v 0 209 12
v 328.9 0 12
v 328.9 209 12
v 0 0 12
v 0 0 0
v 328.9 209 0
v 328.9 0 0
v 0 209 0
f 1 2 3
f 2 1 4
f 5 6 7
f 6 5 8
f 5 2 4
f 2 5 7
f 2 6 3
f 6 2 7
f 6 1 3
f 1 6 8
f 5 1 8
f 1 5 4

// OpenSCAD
/*
Suitecase:

35 x 23 x ?? cm
https://www.galaxus.ch/en/s2/product/max-cases-max004s-suitcases-59549580

35 x 29.5 x 15 cm
https://fr.vidaxl.ch/e/vidaxl-boite-de-protection-pour-equipement-35-x-295-x-15-cm-noir/8718475978510.html

40 x 30 x 19
https://www.galaxus.ch/en/s2/product/impackt-ip1-beautycase-deep-sea-22-l-suitcases-46178421

39 x 28 x 13
https://www.apfelkiste.ch/39x13x28cm-wasserabweisende-kosmetik-tasche-beauty-make-up-organizer-reisetasche-schwarz.html?search%5Bindex%5D=de_products&search%5Bquery%5D=eb42810904c415adf685d2505881b535&search%5Bsource%5D=search

37 x 28 x 12
https://www.apfelkiste.ch/37x12x28cm-wasserabweisende-kosmetik-tasche-beauty-make-up-organizer-reisetasche-schwarz.html?search%5Bindex%5D=de_products&search%5Bquery%5D=eb42810904c415adf685d2505881b535&search%5Bsource%5D=search

Stacked consoles:
  Amiga + Spectrum + NES
  = 16cm
*/

// Screen:
// https://www.digitec.ch/en/s1/product/verbatim-pm-14-portable-monitor-14-full-hd-1080p-1920-x-1080-pixels-14-monitor-24552684?offertype=resale&offerid=2395342
L = 328.9;
H =  12;
W = 209;

cube([L, W, H]);
